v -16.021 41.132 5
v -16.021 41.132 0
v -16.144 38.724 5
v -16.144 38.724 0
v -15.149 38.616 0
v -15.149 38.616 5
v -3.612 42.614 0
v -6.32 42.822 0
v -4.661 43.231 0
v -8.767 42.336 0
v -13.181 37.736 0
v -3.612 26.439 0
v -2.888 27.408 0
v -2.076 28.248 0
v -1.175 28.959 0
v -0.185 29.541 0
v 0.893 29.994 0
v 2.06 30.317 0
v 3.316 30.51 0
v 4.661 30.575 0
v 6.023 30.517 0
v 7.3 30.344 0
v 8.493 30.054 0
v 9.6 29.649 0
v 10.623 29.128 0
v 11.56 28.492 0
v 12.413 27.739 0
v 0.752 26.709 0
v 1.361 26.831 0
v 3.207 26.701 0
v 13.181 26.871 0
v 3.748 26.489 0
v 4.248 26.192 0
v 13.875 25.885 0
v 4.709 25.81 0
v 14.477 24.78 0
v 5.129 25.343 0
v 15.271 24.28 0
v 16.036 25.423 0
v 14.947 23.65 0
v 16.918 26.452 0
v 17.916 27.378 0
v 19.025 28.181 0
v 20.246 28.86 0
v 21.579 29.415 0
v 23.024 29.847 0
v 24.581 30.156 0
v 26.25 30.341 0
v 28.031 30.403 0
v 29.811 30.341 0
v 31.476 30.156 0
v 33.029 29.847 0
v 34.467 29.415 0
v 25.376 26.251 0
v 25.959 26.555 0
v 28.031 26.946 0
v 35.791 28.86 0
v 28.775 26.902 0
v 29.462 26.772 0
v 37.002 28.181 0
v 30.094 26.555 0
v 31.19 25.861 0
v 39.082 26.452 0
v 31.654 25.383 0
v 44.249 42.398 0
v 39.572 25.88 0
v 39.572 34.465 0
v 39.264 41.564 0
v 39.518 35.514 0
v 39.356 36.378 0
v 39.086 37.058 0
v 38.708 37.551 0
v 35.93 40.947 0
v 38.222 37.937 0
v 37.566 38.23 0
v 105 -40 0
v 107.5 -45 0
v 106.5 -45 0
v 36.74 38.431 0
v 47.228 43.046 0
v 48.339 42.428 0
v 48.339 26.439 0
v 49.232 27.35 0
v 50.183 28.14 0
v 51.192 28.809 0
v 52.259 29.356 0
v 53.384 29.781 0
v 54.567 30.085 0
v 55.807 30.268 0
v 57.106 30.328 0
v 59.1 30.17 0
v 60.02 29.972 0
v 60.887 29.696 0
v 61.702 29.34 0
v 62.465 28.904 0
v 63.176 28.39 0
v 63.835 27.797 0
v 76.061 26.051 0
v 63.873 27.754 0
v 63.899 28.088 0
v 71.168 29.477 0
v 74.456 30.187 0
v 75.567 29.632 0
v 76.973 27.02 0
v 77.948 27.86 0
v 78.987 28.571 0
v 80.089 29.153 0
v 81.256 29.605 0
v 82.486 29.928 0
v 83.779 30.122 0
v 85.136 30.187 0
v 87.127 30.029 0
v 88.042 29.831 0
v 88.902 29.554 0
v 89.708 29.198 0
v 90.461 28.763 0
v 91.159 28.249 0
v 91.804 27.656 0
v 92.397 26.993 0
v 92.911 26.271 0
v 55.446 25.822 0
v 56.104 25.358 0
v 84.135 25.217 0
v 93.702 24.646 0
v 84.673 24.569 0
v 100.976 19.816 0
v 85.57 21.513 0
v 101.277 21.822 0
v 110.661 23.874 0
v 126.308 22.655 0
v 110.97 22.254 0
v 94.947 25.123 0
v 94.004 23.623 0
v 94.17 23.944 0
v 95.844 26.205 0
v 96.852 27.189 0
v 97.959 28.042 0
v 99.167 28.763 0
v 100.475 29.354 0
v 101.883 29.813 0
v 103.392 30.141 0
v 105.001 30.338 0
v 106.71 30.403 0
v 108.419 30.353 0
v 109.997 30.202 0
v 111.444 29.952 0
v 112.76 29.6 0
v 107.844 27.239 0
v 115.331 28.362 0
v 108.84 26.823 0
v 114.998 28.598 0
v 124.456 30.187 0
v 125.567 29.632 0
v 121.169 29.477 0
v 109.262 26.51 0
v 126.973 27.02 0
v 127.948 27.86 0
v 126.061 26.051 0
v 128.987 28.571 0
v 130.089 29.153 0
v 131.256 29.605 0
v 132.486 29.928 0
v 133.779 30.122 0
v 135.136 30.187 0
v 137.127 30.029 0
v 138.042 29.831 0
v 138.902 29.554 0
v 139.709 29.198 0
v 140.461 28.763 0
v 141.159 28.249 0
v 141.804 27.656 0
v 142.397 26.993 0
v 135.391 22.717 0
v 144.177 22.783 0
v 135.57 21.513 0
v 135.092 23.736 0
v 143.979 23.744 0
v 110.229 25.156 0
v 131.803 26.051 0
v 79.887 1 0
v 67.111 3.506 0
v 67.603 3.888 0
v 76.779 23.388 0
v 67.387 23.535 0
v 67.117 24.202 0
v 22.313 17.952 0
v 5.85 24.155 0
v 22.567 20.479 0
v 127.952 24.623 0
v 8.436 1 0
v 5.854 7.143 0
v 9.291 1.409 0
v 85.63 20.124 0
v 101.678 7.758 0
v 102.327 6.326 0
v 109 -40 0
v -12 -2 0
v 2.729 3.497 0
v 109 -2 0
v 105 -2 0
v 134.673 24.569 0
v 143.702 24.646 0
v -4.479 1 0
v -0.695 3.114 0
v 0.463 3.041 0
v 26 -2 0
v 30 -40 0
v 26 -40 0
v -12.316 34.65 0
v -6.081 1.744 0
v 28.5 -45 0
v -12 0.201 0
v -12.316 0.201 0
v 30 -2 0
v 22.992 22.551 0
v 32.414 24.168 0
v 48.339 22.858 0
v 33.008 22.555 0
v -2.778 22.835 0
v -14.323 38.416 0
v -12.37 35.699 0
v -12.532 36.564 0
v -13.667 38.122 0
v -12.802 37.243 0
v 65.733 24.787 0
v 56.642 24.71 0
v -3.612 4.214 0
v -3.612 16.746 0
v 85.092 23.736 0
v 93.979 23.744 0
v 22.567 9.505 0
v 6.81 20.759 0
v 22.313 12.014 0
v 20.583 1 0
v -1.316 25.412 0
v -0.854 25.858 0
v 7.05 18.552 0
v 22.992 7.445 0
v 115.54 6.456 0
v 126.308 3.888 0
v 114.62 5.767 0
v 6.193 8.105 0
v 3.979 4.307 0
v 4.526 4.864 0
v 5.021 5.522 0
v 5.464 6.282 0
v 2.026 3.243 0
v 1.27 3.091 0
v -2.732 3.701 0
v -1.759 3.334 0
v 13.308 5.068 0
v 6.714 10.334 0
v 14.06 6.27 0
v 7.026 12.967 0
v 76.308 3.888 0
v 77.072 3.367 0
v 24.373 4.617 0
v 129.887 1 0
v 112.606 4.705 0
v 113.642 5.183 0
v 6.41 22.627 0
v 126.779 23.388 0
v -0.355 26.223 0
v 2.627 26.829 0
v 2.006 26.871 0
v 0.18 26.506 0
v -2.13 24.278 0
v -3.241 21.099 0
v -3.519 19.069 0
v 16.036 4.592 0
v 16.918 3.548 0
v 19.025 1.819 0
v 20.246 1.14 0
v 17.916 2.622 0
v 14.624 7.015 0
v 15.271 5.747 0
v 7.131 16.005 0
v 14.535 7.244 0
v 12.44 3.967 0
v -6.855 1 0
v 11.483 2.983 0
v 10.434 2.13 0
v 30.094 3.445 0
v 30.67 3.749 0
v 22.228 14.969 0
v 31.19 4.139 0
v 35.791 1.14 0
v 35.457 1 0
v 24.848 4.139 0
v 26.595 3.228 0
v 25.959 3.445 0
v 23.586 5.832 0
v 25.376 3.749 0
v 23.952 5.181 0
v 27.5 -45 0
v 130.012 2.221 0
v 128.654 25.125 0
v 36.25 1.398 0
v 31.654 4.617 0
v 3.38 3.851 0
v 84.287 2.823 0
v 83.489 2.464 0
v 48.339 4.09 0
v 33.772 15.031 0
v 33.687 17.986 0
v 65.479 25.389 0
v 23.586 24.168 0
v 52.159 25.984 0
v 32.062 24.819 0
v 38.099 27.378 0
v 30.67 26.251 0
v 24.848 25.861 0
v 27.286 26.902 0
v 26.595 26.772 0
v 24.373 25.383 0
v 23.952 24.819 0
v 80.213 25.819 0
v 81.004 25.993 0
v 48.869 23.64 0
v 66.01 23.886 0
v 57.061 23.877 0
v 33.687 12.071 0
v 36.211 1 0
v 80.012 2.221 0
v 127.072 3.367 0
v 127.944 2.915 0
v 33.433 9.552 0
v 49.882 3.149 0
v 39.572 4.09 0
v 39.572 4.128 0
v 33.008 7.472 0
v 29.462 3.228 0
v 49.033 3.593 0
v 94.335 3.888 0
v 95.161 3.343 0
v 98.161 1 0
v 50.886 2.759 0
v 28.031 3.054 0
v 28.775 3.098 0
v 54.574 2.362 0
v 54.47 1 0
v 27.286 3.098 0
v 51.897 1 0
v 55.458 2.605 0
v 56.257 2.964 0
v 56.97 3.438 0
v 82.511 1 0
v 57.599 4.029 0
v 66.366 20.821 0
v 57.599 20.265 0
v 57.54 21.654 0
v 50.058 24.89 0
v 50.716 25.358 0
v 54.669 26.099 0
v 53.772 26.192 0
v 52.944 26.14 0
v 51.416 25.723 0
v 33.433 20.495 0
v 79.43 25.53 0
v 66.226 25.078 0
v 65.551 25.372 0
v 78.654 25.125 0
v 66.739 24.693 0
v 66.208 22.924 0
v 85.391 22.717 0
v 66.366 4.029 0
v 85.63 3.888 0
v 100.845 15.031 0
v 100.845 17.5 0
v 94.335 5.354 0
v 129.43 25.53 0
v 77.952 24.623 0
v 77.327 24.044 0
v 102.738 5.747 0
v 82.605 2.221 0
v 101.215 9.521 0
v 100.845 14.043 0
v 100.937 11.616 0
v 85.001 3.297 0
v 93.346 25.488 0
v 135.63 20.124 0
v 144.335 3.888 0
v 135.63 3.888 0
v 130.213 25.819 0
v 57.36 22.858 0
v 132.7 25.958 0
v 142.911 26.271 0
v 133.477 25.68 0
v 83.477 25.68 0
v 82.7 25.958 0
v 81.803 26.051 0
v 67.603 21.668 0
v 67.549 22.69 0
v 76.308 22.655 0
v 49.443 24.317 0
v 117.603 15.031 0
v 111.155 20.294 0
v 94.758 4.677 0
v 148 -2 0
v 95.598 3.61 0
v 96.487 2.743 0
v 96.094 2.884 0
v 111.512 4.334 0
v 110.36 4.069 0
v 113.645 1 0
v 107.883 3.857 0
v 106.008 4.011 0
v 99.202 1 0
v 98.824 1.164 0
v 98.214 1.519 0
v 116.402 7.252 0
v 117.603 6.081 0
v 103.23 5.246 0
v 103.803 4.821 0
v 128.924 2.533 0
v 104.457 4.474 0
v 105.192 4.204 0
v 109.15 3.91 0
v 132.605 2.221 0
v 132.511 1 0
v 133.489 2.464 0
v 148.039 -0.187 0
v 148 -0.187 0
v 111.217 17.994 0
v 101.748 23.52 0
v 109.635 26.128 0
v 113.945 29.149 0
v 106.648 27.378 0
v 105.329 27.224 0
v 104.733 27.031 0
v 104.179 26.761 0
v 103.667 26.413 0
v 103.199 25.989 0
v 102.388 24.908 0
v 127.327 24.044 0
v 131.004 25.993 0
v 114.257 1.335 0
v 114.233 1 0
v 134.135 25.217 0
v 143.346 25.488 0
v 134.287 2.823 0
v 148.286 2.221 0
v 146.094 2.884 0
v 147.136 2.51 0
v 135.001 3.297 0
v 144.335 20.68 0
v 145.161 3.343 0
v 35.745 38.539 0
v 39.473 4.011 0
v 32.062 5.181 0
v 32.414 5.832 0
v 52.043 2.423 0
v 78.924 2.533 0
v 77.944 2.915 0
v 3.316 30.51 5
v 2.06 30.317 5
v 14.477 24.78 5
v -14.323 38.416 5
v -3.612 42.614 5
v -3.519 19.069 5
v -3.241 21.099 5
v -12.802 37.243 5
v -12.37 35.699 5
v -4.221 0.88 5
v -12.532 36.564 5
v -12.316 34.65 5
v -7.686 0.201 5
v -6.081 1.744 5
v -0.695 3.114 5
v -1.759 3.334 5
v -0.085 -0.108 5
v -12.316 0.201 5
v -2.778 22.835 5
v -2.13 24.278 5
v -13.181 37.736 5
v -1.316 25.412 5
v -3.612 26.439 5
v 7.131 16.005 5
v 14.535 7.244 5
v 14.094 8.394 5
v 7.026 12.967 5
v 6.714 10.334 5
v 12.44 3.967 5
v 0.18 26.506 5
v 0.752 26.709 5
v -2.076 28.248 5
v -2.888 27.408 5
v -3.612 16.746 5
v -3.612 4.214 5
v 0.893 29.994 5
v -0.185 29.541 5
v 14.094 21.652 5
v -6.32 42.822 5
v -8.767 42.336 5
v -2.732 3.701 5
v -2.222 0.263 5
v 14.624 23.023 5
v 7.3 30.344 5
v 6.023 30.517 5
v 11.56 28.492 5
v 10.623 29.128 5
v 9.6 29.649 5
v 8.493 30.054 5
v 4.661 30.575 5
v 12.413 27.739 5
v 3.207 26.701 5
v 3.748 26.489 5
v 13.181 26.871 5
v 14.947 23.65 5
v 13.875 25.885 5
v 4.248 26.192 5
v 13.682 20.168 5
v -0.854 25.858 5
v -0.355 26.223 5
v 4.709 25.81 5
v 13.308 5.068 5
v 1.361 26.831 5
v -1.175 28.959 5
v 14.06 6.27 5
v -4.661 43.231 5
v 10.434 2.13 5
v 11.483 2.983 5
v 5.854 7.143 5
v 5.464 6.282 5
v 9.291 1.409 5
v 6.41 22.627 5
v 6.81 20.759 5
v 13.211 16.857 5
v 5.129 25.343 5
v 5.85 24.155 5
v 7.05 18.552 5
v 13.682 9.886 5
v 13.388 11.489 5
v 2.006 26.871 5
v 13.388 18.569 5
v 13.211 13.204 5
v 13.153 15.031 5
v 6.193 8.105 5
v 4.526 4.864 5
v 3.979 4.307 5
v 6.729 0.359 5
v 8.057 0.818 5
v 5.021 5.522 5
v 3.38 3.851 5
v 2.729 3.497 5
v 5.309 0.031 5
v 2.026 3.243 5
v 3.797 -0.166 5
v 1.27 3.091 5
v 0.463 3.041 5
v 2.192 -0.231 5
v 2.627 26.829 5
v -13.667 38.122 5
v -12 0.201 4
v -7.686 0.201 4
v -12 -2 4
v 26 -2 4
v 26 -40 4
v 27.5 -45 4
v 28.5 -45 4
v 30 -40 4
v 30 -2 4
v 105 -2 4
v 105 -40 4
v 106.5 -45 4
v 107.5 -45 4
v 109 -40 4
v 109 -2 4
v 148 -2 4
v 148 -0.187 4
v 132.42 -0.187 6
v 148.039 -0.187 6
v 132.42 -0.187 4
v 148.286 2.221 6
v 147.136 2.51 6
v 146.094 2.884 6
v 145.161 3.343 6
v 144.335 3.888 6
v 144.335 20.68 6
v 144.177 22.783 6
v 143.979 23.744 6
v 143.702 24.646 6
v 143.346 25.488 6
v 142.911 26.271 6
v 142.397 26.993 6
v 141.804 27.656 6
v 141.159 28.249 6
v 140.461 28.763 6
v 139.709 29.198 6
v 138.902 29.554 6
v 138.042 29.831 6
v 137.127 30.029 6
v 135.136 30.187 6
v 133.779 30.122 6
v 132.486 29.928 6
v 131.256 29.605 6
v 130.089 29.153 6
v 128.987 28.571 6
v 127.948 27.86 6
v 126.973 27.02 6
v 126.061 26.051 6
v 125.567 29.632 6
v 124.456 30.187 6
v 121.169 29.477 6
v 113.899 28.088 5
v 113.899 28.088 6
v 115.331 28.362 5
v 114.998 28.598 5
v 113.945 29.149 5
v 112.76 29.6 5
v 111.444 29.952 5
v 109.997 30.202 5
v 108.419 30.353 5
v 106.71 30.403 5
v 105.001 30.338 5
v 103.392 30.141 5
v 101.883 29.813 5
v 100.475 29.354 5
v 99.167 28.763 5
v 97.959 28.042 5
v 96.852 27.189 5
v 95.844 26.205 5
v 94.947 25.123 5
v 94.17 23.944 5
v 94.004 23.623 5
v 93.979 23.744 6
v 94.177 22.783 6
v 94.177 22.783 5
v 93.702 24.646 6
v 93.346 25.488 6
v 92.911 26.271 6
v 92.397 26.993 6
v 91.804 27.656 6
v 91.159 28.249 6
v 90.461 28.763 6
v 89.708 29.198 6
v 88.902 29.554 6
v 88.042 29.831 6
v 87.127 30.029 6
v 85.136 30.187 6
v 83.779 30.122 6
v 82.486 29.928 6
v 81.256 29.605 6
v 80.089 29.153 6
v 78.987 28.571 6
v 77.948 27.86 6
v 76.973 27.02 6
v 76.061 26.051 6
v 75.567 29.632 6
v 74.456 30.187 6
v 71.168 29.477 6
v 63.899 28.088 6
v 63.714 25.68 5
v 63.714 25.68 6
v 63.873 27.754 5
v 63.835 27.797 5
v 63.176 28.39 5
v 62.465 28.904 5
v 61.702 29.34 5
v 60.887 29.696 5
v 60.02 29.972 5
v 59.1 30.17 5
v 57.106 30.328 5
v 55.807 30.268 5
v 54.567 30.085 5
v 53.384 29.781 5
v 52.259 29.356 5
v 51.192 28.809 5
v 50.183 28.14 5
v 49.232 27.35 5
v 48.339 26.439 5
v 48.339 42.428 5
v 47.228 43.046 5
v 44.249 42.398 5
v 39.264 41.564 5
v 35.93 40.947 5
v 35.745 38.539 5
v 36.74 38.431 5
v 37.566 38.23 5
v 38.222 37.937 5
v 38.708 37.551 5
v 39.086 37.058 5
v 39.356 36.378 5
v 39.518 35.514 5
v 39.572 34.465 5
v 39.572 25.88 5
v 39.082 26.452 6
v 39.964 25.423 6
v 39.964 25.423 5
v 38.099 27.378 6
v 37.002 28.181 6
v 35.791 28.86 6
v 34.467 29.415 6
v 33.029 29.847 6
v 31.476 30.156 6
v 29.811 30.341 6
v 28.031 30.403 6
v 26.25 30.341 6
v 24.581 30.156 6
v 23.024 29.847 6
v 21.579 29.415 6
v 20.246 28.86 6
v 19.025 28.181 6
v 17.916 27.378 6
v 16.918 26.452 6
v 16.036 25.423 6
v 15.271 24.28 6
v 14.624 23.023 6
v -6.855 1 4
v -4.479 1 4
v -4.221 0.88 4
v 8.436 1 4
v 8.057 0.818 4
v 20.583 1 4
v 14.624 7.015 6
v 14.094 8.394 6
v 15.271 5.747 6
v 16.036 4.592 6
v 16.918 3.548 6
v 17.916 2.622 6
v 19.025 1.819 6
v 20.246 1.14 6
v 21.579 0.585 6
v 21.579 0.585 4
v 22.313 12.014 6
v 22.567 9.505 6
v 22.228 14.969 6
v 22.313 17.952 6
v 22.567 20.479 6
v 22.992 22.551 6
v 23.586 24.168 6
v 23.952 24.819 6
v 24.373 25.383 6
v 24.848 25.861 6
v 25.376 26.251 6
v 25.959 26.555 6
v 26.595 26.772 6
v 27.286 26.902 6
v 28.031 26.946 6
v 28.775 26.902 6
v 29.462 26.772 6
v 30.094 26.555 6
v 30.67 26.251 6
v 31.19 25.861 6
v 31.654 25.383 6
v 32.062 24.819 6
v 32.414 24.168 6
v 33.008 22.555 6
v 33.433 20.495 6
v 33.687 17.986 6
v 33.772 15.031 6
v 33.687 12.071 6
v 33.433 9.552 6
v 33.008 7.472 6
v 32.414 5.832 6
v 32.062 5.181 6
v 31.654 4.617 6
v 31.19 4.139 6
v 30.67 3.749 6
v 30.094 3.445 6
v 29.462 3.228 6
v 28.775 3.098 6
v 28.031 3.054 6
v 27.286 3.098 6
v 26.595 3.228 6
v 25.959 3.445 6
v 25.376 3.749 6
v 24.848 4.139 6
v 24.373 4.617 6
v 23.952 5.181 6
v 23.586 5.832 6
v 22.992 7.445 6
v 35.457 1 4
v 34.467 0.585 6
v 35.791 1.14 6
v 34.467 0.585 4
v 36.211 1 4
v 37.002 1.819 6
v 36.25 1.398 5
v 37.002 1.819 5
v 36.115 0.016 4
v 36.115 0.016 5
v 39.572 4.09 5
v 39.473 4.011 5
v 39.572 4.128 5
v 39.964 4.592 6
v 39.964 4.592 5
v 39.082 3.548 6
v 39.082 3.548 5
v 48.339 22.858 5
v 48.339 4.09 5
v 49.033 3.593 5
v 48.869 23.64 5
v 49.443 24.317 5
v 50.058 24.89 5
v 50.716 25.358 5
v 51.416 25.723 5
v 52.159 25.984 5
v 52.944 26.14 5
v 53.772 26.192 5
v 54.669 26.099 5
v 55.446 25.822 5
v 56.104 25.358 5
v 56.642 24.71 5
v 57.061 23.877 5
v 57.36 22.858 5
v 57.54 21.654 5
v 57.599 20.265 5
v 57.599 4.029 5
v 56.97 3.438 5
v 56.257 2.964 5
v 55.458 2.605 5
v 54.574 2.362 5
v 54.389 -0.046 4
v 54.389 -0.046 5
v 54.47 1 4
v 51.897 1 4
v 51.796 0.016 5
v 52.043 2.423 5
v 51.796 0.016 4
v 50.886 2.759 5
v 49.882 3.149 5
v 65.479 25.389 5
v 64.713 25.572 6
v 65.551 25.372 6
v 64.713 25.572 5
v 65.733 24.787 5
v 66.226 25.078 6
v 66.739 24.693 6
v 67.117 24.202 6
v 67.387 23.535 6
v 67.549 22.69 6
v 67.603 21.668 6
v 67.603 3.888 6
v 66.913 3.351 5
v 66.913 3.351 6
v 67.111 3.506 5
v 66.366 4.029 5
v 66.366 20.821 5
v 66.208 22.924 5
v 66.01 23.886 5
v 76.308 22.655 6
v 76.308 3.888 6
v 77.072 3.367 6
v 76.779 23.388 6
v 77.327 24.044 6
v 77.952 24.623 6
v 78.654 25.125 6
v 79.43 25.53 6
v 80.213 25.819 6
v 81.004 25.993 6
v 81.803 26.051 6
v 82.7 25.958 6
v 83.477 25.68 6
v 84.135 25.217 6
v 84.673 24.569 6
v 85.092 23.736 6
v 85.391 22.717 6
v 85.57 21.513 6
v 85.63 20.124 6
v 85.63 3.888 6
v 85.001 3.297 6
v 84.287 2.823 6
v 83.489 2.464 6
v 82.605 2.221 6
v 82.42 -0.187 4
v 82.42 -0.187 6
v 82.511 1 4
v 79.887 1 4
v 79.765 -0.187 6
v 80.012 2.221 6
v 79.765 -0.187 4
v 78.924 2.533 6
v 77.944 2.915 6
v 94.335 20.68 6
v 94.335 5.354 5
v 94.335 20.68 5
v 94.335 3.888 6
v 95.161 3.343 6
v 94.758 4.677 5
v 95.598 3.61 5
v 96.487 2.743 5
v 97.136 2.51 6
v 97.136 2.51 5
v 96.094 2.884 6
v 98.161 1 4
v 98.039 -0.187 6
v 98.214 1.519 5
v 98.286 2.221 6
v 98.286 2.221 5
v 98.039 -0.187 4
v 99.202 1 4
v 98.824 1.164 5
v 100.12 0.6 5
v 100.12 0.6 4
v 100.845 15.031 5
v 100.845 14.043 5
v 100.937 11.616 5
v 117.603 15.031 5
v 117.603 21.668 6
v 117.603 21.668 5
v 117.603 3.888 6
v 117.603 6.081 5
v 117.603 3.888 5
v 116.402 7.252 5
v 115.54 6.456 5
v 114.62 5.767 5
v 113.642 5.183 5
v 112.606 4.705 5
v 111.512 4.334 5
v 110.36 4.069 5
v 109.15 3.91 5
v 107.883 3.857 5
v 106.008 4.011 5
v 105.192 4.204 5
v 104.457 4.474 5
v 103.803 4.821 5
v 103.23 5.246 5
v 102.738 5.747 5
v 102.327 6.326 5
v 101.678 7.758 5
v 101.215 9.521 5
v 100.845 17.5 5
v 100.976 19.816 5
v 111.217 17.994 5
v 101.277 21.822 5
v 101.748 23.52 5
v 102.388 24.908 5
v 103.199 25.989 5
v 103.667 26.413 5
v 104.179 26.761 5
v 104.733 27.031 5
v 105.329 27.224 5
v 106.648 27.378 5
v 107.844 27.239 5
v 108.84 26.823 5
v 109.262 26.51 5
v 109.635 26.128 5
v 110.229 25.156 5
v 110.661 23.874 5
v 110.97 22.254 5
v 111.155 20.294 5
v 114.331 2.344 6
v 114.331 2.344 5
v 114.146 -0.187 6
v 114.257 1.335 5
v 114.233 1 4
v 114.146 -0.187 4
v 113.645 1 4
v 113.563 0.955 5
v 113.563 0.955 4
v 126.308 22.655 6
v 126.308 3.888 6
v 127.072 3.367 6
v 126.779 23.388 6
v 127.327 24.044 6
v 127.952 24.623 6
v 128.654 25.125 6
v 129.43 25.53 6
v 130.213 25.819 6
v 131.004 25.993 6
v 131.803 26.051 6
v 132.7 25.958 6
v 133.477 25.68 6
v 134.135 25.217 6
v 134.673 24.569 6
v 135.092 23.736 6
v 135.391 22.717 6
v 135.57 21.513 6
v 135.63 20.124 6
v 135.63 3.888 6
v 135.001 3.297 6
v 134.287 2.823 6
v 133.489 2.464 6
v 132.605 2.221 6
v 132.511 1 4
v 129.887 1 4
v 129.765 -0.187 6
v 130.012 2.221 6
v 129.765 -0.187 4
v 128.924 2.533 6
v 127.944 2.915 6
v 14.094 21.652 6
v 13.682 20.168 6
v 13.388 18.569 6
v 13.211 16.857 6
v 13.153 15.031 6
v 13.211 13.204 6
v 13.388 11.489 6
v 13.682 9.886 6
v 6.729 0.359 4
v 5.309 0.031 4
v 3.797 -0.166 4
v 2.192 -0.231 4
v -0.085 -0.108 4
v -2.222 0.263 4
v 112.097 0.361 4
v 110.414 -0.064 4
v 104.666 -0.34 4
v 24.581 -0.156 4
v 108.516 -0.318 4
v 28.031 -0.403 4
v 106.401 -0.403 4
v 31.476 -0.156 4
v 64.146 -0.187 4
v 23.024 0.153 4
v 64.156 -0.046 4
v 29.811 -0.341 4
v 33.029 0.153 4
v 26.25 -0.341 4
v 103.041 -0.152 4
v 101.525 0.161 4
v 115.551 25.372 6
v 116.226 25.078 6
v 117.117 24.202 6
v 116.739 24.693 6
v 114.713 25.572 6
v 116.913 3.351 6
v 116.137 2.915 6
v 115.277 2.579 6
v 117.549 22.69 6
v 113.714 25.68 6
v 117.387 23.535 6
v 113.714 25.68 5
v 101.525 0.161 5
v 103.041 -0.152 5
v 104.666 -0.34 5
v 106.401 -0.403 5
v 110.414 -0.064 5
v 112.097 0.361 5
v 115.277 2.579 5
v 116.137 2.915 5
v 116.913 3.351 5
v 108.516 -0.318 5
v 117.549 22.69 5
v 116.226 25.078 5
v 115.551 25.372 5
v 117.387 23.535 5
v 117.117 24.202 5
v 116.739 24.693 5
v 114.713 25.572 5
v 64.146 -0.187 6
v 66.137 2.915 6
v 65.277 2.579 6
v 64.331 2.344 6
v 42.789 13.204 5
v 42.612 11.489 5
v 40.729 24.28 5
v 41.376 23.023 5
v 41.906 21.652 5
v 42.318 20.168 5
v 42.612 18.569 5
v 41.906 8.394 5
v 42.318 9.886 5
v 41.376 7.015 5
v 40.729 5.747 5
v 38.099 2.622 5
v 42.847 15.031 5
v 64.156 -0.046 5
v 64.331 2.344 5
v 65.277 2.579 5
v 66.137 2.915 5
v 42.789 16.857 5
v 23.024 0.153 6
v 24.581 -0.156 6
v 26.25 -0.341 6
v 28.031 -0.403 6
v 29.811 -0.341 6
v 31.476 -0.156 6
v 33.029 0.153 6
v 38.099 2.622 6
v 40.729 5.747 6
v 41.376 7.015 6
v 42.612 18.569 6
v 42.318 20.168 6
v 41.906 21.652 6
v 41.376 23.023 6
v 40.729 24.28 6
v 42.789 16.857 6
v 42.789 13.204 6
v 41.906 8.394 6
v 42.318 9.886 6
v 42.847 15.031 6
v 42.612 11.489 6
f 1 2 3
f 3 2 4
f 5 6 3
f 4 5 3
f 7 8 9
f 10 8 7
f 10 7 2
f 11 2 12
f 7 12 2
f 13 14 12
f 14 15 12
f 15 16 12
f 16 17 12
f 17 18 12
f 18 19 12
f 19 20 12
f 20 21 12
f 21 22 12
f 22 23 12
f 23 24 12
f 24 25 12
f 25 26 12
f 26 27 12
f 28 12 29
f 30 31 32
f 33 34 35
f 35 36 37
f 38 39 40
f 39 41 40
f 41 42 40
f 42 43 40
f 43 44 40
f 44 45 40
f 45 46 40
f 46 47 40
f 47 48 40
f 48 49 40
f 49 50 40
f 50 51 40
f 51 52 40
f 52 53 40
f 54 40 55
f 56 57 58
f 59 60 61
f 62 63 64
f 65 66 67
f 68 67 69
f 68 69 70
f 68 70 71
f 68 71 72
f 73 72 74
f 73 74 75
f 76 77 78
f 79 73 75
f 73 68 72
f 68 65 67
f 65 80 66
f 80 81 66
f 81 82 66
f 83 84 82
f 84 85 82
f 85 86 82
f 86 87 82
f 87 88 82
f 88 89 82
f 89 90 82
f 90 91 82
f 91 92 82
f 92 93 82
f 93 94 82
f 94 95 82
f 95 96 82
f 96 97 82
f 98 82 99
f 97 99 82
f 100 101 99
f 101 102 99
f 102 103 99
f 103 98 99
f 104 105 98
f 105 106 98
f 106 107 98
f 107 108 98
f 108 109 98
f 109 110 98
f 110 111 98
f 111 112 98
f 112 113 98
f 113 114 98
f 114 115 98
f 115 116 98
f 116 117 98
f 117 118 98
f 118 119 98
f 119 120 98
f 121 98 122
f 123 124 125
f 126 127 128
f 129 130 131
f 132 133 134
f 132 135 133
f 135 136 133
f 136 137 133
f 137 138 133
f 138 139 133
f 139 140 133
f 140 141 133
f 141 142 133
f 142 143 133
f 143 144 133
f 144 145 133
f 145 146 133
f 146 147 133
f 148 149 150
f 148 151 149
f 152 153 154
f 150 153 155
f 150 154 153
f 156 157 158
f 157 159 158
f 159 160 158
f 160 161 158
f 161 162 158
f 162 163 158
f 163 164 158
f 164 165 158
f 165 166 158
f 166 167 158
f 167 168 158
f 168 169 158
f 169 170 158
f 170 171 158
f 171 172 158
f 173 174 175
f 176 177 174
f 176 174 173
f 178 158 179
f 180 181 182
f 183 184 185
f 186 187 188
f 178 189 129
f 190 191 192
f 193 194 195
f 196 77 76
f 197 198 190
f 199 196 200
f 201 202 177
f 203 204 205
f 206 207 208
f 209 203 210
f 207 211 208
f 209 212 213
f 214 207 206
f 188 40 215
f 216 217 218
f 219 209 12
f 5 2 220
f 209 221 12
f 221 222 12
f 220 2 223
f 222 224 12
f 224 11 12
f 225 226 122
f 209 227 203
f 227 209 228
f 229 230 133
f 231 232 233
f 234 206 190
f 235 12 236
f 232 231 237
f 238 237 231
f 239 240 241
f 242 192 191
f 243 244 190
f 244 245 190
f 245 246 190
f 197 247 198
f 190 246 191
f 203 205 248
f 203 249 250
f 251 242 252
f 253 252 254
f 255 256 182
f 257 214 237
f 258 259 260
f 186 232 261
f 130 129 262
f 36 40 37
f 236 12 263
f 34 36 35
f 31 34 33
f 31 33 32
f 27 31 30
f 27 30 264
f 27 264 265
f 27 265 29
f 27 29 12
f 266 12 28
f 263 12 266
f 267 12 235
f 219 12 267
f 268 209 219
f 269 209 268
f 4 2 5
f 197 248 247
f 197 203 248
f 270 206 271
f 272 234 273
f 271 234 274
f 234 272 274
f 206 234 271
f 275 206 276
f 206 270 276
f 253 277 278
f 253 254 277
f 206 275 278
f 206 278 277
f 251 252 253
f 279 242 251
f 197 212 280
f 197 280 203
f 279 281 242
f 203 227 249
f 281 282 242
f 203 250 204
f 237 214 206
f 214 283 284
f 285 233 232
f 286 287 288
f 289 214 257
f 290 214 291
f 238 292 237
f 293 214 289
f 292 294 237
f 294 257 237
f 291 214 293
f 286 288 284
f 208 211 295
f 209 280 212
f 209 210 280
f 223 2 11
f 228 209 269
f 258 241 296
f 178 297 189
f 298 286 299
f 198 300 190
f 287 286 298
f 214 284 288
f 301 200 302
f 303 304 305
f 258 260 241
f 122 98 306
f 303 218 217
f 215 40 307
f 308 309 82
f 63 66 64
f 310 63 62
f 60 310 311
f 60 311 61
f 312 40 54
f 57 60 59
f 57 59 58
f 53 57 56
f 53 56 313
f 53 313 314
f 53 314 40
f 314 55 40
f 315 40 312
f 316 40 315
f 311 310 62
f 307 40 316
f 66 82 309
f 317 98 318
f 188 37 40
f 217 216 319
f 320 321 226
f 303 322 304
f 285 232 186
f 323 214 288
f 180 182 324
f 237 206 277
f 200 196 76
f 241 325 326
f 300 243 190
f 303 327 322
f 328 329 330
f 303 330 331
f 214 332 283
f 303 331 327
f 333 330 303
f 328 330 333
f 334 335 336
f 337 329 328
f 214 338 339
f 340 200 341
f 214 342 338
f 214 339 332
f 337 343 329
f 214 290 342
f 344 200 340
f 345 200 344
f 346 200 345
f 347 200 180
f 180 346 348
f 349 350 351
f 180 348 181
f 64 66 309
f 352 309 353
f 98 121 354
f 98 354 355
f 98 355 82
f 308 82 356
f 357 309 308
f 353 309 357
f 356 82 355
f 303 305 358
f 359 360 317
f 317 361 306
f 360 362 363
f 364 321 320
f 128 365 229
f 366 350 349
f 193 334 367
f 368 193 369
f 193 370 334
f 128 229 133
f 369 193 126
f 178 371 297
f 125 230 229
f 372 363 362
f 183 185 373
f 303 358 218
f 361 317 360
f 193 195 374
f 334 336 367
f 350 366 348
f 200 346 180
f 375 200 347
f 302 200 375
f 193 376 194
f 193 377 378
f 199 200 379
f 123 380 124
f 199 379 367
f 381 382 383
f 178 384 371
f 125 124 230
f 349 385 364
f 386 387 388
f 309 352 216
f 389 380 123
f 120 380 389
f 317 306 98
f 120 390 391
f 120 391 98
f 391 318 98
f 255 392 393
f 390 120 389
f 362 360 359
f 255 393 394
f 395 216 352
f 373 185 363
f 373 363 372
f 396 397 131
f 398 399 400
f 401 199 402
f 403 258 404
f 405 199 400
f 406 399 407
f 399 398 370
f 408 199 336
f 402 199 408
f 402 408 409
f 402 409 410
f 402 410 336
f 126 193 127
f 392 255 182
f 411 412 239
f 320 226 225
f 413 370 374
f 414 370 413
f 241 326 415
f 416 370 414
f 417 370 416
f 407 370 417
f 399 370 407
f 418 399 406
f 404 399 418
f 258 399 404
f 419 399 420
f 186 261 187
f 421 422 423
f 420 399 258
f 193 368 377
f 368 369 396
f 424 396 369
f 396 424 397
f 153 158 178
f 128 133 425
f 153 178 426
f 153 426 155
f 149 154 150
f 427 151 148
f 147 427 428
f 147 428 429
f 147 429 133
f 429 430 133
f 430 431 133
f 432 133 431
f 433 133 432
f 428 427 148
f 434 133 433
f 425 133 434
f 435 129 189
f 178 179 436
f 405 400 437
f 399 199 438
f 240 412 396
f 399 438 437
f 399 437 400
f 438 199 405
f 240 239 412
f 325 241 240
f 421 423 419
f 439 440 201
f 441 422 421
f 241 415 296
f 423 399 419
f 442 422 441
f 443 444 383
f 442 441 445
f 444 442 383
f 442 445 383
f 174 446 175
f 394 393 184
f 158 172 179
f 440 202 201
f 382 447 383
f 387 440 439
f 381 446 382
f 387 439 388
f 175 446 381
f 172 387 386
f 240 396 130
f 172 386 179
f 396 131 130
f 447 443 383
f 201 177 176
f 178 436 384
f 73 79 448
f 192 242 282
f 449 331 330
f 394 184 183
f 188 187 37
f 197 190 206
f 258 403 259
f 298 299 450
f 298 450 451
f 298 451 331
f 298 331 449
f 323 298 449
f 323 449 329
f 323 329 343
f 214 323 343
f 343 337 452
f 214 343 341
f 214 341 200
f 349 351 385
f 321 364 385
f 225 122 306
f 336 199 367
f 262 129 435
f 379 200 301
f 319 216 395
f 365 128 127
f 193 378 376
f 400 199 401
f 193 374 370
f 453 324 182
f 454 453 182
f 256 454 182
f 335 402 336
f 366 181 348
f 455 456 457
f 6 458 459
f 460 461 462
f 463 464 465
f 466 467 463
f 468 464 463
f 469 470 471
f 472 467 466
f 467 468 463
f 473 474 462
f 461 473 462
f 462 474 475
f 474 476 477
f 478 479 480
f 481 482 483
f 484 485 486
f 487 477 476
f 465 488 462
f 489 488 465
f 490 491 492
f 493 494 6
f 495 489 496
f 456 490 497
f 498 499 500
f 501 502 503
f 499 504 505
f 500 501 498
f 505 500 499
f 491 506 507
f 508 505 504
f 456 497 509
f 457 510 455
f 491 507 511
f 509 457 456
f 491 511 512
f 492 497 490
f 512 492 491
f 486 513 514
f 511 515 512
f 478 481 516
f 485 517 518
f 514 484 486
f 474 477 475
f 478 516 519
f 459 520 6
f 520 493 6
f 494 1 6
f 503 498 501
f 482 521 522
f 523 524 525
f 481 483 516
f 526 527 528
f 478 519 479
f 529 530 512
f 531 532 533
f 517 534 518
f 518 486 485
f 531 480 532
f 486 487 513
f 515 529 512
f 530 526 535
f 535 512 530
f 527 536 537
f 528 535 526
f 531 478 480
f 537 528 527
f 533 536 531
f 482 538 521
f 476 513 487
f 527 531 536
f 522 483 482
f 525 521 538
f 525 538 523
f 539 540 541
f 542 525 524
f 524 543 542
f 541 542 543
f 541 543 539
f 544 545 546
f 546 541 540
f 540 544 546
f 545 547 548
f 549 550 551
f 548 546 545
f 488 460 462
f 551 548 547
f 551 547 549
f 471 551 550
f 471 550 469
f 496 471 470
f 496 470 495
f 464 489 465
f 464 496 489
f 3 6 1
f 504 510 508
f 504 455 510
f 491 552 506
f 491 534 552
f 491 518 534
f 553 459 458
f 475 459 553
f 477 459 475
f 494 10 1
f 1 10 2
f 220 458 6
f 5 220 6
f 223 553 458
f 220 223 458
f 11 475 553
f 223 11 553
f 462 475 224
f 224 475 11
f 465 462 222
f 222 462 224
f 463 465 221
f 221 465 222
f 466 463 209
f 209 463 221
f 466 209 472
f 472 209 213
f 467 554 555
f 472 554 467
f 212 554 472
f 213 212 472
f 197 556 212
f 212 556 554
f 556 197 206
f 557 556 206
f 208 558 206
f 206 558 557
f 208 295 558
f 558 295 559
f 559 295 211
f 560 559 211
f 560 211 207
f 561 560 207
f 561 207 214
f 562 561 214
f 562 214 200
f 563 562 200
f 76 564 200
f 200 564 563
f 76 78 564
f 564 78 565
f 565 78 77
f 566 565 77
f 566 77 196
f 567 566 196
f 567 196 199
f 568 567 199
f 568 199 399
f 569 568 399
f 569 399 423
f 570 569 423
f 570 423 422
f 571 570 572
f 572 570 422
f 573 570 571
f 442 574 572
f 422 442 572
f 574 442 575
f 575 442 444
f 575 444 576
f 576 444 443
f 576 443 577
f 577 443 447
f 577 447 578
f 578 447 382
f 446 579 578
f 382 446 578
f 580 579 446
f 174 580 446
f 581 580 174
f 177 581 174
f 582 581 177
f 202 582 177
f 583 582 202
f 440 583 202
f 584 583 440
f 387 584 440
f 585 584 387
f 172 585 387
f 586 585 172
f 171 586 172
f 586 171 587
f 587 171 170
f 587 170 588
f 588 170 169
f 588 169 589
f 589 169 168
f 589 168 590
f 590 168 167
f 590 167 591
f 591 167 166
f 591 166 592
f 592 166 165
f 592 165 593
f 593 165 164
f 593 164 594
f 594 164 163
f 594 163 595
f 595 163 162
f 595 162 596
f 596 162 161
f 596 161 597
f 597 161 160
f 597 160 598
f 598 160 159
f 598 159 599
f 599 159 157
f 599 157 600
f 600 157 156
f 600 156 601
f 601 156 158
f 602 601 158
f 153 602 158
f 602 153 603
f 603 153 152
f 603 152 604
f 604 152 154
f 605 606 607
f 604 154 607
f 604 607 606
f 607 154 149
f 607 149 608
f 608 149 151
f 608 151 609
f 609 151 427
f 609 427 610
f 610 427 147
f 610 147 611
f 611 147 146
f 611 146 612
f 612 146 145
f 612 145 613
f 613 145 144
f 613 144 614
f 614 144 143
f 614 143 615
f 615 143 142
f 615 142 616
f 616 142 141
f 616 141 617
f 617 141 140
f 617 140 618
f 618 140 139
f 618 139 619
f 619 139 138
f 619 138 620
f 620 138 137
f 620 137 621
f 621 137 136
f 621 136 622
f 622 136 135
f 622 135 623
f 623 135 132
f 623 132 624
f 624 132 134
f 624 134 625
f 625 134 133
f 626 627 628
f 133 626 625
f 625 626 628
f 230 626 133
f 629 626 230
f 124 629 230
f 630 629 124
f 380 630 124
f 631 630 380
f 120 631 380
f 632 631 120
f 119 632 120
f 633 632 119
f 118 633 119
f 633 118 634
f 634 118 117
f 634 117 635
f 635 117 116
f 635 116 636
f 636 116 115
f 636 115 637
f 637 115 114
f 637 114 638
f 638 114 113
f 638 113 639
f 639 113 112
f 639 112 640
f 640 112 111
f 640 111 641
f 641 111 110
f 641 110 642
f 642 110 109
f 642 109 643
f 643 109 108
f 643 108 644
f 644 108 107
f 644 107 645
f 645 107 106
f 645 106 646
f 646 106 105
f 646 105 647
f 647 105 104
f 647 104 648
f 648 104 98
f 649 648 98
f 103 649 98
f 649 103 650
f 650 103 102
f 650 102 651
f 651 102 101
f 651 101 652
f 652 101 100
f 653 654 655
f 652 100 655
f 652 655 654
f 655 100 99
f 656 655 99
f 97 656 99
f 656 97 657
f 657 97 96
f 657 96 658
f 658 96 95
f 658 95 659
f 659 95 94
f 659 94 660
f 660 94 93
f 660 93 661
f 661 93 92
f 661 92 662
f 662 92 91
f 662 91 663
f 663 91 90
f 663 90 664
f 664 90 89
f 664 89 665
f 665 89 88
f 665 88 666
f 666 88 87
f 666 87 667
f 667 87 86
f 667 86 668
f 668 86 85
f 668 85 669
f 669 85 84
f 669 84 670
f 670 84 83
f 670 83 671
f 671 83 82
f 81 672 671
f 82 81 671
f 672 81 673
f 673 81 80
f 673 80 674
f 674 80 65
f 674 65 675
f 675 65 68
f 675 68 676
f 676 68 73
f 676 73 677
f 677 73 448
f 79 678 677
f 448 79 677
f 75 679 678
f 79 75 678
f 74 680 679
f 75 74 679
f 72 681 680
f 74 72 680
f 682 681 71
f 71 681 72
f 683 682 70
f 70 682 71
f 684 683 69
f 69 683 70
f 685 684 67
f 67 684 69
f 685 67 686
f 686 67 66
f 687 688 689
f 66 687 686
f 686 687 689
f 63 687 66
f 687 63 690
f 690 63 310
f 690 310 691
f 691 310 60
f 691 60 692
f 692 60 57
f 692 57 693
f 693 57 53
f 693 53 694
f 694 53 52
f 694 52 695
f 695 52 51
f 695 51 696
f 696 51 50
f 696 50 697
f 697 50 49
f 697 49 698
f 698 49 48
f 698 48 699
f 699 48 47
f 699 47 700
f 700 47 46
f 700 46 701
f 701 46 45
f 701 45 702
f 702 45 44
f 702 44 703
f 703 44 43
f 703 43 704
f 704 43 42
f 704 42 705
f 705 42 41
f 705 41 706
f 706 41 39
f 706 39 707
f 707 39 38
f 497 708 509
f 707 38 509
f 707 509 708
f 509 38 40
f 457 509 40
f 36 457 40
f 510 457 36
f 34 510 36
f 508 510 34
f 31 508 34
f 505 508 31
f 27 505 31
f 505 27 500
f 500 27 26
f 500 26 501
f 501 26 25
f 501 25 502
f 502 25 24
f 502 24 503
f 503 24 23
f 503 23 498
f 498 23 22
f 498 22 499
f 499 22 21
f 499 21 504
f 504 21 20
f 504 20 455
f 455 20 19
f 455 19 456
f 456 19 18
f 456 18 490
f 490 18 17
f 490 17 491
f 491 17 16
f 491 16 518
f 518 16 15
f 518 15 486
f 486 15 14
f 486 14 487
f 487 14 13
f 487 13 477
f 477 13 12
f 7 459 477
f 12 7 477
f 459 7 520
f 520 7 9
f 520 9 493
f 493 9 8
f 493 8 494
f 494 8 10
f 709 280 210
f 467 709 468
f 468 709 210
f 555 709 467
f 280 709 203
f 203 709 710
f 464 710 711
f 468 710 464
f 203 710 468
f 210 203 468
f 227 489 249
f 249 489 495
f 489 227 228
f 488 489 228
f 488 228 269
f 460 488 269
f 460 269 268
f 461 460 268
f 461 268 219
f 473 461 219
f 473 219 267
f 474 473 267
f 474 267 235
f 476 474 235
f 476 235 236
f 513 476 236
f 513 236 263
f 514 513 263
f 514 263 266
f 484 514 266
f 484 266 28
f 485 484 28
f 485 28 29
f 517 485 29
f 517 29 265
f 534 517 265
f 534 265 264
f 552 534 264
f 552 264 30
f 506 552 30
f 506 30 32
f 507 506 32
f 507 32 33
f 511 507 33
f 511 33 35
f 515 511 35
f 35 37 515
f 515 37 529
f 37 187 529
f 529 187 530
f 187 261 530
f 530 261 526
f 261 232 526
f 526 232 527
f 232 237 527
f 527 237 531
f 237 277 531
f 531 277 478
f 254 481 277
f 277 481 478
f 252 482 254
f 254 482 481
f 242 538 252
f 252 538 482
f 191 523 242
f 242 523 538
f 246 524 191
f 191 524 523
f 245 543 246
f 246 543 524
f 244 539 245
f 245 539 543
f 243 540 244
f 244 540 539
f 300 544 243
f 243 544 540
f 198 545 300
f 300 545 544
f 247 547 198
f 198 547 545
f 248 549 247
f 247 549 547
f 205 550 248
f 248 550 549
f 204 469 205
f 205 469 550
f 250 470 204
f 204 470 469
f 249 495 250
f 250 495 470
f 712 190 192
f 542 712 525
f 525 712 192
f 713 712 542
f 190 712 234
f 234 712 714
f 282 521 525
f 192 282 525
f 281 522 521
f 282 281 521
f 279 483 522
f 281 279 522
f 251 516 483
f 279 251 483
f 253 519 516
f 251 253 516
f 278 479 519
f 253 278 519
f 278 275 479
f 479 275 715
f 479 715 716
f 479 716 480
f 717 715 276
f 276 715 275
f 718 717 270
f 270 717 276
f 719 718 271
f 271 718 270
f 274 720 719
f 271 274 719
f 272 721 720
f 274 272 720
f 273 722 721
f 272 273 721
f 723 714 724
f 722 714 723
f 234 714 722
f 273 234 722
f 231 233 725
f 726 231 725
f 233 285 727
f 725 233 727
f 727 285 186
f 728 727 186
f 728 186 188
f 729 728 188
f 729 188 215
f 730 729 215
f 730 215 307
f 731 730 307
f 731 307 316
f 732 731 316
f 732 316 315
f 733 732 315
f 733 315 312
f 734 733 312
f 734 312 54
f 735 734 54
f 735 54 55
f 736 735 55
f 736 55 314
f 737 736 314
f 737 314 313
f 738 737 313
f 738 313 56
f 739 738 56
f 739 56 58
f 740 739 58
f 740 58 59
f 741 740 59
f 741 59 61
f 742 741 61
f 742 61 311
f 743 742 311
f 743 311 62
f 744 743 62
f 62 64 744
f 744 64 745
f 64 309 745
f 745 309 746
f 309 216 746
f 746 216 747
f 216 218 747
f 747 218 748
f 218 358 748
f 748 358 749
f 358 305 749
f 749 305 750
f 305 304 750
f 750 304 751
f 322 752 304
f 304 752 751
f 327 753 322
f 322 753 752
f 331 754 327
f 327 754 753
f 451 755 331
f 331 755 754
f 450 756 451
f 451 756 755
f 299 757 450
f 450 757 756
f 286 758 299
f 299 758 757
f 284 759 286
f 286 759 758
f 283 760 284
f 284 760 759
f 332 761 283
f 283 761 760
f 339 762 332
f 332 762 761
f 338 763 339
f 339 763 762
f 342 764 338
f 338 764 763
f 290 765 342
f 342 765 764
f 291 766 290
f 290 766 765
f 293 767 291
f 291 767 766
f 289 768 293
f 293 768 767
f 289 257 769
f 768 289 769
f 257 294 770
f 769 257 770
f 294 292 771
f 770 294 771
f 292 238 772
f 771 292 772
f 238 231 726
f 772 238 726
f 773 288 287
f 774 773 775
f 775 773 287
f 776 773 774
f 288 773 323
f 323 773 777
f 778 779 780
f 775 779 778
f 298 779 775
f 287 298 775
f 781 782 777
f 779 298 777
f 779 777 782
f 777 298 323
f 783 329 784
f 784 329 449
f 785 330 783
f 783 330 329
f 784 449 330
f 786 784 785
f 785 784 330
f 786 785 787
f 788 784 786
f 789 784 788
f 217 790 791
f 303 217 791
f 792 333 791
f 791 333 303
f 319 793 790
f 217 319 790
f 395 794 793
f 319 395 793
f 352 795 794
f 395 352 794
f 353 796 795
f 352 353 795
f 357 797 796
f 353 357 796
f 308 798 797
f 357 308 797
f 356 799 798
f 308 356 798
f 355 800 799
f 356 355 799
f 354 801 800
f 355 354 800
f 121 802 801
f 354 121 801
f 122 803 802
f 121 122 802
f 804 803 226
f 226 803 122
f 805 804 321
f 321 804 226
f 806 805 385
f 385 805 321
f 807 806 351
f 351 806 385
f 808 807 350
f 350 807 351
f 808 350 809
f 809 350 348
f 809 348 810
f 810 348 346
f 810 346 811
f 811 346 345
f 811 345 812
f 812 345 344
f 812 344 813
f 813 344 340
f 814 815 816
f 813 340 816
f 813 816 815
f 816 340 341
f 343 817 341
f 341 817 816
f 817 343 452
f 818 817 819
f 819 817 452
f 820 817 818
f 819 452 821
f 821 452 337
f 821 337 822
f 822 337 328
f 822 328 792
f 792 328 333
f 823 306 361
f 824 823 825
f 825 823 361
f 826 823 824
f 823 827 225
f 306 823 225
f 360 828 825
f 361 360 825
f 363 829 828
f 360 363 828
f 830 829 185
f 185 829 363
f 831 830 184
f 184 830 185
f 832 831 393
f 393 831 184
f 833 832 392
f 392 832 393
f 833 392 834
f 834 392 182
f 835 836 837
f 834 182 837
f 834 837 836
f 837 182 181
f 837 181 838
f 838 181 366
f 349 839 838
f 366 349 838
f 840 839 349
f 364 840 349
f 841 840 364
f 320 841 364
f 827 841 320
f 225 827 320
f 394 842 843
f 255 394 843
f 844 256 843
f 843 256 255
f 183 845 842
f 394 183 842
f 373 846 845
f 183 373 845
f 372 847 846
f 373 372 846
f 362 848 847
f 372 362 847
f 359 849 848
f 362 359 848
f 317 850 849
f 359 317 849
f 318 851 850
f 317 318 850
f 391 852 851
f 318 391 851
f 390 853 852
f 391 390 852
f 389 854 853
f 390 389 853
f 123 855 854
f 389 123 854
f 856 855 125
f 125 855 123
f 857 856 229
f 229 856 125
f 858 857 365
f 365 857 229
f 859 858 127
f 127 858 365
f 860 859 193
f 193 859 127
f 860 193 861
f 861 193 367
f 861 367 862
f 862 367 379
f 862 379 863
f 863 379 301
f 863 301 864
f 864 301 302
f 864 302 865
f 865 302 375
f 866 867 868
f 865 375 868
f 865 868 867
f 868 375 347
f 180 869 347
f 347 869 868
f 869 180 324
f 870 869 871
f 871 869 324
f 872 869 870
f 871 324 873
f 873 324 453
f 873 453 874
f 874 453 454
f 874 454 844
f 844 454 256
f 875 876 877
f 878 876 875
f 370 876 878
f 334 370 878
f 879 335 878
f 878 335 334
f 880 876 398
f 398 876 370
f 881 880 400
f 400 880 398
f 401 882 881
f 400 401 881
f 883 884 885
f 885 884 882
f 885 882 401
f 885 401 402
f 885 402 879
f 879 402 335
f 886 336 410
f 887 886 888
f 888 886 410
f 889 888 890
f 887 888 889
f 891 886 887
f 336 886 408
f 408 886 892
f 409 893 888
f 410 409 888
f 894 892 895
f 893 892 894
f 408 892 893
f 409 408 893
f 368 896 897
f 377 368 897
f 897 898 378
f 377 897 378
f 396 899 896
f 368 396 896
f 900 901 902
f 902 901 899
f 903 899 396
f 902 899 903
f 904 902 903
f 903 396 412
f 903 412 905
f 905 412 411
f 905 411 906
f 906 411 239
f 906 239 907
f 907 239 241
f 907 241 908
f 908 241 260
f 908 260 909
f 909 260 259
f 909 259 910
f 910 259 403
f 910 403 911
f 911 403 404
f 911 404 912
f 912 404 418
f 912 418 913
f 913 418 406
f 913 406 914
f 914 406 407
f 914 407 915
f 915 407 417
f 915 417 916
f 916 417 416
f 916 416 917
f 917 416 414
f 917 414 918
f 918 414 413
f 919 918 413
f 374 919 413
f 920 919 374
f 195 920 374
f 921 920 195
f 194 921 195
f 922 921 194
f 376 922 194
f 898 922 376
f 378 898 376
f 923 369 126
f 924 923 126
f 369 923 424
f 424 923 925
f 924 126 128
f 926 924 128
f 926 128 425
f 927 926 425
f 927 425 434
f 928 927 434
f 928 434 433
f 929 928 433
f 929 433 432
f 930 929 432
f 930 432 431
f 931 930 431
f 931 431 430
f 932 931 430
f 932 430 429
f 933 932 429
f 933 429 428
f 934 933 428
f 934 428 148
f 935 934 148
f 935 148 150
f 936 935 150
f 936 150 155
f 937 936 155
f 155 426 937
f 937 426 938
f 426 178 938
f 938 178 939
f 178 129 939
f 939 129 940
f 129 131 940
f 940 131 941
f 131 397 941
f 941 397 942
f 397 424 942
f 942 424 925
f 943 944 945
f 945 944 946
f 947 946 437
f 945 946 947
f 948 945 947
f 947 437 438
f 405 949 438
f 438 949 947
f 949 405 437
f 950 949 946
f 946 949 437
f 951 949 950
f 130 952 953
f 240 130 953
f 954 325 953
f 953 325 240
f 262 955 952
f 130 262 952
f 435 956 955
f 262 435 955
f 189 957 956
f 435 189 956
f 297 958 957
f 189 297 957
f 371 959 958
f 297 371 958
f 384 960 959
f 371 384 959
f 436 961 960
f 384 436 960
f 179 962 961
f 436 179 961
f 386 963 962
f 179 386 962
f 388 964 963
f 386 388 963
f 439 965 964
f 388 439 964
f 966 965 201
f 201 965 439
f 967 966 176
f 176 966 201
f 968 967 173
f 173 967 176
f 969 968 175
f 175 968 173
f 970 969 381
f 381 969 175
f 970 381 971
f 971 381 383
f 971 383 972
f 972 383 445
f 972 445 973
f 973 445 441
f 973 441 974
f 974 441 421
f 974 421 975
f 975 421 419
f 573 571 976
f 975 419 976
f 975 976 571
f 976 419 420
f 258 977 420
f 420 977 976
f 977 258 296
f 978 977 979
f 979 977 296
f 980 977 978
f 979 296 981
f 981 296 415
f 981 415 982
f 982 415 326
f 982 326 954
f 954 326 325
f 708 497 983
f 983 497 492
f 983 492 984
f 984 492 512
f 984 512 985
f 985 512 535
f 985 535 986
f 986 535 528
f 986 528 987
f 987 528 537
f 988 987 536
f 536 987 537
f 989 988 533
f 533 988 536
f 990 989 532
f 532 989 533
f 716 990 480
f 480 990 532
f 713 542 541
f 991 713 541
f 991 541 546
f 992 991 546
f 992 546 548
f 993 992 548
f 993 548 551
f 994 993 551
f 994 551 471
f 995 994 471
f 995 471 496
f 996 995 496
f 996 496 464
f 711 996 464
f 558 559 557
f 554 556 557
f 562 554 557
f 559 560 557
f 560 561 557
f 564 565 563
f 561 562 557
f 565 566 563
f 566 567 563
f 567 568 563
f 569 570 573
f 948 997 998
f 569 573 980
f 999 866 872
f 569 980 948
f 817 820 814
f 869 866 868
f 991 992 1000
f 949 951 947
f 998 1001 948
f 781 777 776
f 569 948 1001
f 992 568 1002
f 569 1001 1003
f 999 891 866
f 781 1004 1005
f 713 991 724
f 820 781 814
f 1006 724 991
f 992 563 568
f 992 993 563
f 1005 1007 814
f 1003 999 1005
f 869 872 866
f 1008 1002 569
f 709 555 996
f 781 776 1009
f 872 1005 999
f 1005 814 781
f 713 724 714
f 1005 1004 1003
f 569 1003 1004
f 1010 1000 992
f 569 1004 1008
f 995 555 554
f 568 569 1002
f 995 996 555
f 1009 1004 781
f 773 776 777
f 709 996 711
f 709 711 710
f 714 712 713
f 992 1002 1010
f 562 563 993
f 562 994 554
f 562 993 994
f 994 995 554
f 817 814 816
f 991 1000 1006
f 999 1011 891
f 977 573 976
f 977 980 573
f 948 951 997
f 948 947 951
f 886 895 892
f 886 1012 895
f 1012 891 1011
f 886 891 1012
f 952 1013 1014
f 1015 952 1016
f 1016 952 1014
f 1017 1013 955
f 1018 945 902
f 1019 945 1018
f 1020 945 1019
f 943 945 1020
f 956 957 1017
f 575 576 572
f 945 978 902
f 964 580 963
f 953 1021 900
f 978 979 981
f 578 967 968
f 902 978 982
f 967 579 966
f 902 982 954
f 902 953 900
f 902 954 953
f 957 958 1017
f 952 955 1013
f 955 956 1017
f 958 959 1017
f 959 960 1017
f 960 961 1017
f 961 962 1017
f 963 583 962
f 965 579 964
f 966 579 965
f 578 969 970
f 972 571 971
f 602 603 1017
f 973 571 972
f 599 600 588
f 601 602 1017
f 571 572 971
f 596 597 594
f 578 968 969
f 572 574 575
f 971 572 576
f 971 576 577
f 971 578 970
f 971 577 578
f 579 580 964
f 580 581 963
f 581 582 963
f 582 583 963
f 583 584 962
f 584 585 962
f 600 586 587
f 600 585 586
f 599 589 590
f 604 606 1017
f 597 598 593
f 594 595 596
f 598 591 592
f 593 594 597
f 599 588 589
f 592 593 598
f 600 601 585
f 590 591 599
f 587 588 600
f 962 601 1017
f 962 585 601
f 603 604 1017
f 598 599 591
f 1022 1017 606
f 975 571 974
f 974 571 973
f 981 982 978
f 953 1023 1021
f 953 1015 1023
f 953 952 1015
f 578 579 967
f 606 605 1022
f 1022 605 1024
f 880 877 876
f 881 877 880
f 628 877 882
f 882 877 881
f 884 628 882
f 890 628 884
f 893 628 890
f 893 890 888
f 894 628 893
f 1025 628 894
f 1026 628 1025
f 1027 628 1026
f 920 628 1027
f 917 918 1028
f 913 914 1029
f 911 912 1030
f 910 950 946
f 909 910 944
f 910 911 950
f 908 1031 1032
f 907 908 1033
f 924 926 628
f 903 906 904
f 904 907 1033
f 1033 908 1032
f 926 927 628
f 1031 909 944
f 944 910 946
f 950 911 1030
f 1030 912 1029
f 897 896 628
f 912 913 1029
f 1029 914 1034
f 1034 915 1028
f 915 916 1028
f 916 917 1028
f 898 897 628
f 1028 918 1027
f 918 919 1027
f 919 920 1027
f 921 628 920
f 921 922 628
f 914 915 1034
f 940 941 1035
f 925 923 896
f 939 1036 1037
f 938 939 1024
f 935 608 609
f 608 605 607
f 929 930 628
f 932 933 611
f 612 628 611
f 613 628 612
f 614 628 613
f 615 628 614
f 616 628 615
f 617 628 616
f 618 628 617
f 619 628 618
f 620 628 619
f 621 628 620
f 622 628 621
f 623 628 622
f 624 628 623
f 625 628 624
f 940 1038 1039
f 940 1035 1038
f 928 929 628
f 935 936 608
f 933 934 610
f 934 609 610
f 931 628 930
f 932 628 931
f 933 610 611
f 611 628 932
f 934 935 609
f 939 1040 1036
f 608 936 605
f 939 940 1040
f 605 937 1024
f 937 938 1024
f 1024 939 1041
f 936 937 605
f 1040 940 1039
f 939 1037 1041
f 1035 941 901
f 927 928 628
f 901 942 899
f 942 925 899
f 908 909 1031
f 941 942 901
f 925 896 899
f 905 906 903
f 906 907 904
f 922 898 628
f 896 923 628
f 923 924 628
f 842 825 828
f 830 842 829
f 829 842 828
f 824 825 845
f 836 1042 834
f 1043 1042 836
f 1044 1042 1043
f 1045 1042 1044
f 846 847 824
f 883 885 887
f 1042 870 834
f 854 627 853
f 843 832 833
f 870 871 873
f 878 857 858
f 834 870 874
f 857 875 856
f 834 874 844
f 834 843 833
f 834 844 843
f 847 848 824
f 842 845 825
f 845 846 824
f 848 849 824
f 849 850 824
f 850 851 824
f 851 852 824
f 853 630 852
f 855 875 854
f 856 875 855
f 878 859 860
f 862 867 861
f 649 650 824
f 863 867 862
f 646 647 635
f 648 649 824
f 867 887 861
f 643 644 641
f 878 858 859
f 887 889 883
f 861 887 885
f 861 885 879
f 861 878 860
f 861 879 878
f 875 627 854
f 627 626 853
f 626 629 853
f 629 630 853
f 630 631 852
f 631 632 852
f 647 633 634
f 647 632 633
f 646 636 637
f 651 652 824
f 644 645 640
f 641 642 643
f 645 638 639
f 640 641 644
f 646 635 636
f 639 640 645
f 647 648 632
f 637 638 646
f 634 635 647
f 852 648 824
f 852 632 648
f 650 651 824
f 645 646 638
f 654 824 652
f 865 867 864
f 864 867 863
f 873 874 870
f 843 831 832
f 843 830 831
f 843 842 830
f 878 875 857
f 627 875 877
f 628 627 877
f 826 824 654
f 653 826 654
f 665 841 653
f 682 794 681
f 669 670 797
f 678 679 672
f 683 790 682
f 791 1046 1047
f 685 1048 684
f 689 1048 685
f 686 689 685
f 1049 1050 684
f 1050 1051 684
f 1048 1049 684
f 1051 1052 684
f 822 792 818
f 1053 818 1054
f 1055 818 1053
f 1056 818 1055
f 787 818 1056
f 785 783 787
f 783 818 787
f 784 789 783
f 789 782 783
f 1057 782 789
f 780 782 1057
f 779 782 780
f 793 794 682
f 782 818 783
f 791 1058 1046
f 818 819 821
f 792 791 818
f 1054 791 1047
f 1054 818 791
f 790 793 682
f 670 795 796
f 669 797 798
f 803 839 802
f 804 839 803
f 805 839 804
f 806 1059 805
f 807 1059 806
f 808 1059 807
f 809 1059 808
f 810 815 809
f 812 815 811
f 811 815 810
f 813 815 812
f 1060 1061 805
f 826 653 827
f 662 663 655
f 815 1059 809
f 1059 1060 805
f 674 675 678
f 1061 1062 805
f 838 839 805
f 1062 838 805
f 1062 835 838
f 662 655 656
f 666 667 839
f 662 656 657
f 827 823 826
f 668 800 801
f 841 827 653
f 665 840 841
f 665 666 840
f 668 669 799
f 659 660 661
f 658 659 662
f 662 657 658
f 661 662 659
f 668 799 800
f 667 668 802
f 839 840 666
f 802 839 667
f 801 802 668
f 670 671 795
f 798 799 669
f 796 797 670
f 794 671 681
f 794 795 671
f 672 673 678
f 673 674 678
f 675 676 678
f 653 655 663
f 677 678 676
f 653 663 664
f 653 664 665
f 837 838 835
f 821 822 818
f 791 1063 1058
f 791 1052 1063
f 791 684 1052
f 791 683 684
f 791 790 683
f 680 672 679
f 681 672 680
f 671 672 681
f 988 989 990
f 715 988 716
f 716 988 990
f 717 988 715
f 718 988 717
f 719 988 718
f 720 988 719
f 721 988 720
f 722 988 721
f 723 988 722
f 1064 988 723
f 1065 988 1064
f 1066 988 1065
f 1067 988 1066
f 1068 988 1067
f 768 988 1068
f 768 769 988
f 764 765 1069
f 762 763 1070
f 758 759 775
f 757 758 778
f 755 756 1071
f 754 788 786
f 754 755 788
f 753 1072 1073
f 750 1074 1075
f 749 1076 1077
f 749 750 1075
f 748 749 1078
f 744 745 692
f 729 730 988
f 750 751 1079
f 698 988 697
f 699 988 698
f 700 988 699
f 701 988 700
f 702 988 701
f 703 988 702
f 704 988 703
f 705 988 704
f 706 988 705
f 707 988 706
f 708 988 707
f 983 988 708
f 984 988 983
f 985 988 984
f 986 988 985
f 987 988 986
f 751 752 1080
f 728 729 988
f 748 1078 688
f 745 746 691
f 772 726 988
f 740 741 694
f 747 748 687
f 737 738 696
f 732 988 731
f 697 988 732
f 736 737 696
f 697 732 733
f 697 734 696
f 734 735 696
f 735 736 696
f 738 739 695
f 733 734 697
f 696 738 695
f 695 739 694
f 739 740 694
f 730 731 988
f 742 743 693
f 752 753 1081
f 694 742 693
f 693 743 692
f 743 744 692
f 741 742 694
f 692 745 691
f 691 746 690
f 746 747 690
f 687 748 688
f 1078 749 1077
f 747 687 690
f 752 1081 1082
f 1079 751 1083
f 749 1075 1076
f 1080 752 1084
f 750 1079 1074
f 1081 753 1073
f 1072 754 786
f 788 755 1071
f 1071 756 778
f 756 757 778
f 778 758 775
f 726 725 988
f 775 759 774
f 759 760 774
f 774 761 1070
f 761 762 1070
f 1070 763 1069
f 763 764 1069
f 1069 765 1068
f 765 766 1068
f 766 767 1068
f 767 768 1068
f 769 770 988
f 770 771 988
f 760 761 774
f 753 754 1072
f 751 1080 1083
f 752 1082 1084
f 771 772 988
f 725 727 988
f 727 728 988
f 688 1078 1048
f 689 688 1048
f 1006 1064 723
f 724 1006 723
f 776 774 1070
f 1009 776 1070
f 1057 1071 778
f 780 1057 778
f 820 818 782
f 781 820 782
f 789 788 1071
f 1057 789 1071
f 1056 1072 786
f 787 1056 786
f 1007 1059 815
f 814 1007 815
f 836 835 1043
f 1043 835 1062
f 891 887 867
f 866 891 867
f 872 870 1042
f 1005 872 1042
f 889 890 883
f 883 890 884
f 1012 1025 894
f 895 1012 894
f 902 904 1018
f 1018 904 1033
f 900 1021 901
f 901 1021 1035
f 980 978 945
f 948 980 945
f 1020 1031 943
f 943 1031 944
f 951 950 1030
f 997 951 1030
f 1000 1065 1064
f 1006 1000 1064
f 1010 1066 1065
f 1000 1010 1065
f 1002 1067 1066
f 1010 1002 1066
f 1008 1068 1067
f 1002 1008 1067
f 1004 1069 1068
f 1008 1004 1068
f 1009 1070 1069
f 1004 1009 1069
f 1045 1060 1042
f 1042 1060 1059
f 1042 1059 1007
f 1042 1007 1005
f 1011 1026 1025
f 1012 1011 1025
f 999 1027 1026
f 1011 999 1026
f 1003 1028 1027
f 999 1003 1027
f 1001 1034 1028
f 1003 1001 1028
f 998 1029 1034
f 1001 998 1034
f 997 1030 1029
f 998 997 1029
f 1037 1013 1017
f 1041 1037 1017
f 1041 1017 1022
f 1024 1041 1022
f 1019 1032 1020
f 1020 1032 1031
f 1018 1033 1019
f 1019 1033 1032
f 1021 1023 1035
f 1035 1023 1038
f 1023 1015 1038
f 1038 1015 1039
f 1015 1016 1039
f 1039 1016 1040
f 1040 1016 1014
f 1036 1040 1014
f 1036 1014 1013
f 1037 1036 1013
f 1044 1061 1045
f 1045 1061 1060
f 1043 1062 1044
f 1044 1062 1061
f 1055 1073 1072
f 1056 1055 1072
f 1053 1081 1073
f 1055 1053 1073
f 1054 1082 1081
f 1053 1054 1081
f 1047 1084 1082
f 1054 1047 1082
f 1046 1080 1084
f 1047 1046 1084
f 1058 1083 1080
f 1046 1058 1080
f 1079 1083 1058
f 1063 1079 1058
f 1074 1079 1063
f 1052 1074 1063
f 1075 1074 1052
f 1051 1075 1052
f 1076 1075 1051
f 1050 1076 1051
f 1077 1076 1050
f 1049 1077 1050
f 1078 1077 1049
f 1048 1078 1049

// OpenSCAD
fudge = 0.1;


include <letters.scad>;

module nail(l,w,h){
	hull(){
	translate([-w/2,5,0]) cube([w,l,h]);
	translate([-0.5,0,0]) cube([1,1,h]);
	}
}

translate([0,21.5,0]) letter_b(5);
translate([28,15.0,0]) letter_o(6);
translate([53,21.5,0]) letter_h(5);
translate([81,15.0,0]) letter_n(6);
translate([106,15,0]) letter_e(5);
translate([131,15.0,0]) letter_n(6);

translate([-12,-2,0]) cube([160,3,4]);

translate([28,-45,0]) nail(40,4,4);
translate([107,-45,0]) nail(40,4,4);	
